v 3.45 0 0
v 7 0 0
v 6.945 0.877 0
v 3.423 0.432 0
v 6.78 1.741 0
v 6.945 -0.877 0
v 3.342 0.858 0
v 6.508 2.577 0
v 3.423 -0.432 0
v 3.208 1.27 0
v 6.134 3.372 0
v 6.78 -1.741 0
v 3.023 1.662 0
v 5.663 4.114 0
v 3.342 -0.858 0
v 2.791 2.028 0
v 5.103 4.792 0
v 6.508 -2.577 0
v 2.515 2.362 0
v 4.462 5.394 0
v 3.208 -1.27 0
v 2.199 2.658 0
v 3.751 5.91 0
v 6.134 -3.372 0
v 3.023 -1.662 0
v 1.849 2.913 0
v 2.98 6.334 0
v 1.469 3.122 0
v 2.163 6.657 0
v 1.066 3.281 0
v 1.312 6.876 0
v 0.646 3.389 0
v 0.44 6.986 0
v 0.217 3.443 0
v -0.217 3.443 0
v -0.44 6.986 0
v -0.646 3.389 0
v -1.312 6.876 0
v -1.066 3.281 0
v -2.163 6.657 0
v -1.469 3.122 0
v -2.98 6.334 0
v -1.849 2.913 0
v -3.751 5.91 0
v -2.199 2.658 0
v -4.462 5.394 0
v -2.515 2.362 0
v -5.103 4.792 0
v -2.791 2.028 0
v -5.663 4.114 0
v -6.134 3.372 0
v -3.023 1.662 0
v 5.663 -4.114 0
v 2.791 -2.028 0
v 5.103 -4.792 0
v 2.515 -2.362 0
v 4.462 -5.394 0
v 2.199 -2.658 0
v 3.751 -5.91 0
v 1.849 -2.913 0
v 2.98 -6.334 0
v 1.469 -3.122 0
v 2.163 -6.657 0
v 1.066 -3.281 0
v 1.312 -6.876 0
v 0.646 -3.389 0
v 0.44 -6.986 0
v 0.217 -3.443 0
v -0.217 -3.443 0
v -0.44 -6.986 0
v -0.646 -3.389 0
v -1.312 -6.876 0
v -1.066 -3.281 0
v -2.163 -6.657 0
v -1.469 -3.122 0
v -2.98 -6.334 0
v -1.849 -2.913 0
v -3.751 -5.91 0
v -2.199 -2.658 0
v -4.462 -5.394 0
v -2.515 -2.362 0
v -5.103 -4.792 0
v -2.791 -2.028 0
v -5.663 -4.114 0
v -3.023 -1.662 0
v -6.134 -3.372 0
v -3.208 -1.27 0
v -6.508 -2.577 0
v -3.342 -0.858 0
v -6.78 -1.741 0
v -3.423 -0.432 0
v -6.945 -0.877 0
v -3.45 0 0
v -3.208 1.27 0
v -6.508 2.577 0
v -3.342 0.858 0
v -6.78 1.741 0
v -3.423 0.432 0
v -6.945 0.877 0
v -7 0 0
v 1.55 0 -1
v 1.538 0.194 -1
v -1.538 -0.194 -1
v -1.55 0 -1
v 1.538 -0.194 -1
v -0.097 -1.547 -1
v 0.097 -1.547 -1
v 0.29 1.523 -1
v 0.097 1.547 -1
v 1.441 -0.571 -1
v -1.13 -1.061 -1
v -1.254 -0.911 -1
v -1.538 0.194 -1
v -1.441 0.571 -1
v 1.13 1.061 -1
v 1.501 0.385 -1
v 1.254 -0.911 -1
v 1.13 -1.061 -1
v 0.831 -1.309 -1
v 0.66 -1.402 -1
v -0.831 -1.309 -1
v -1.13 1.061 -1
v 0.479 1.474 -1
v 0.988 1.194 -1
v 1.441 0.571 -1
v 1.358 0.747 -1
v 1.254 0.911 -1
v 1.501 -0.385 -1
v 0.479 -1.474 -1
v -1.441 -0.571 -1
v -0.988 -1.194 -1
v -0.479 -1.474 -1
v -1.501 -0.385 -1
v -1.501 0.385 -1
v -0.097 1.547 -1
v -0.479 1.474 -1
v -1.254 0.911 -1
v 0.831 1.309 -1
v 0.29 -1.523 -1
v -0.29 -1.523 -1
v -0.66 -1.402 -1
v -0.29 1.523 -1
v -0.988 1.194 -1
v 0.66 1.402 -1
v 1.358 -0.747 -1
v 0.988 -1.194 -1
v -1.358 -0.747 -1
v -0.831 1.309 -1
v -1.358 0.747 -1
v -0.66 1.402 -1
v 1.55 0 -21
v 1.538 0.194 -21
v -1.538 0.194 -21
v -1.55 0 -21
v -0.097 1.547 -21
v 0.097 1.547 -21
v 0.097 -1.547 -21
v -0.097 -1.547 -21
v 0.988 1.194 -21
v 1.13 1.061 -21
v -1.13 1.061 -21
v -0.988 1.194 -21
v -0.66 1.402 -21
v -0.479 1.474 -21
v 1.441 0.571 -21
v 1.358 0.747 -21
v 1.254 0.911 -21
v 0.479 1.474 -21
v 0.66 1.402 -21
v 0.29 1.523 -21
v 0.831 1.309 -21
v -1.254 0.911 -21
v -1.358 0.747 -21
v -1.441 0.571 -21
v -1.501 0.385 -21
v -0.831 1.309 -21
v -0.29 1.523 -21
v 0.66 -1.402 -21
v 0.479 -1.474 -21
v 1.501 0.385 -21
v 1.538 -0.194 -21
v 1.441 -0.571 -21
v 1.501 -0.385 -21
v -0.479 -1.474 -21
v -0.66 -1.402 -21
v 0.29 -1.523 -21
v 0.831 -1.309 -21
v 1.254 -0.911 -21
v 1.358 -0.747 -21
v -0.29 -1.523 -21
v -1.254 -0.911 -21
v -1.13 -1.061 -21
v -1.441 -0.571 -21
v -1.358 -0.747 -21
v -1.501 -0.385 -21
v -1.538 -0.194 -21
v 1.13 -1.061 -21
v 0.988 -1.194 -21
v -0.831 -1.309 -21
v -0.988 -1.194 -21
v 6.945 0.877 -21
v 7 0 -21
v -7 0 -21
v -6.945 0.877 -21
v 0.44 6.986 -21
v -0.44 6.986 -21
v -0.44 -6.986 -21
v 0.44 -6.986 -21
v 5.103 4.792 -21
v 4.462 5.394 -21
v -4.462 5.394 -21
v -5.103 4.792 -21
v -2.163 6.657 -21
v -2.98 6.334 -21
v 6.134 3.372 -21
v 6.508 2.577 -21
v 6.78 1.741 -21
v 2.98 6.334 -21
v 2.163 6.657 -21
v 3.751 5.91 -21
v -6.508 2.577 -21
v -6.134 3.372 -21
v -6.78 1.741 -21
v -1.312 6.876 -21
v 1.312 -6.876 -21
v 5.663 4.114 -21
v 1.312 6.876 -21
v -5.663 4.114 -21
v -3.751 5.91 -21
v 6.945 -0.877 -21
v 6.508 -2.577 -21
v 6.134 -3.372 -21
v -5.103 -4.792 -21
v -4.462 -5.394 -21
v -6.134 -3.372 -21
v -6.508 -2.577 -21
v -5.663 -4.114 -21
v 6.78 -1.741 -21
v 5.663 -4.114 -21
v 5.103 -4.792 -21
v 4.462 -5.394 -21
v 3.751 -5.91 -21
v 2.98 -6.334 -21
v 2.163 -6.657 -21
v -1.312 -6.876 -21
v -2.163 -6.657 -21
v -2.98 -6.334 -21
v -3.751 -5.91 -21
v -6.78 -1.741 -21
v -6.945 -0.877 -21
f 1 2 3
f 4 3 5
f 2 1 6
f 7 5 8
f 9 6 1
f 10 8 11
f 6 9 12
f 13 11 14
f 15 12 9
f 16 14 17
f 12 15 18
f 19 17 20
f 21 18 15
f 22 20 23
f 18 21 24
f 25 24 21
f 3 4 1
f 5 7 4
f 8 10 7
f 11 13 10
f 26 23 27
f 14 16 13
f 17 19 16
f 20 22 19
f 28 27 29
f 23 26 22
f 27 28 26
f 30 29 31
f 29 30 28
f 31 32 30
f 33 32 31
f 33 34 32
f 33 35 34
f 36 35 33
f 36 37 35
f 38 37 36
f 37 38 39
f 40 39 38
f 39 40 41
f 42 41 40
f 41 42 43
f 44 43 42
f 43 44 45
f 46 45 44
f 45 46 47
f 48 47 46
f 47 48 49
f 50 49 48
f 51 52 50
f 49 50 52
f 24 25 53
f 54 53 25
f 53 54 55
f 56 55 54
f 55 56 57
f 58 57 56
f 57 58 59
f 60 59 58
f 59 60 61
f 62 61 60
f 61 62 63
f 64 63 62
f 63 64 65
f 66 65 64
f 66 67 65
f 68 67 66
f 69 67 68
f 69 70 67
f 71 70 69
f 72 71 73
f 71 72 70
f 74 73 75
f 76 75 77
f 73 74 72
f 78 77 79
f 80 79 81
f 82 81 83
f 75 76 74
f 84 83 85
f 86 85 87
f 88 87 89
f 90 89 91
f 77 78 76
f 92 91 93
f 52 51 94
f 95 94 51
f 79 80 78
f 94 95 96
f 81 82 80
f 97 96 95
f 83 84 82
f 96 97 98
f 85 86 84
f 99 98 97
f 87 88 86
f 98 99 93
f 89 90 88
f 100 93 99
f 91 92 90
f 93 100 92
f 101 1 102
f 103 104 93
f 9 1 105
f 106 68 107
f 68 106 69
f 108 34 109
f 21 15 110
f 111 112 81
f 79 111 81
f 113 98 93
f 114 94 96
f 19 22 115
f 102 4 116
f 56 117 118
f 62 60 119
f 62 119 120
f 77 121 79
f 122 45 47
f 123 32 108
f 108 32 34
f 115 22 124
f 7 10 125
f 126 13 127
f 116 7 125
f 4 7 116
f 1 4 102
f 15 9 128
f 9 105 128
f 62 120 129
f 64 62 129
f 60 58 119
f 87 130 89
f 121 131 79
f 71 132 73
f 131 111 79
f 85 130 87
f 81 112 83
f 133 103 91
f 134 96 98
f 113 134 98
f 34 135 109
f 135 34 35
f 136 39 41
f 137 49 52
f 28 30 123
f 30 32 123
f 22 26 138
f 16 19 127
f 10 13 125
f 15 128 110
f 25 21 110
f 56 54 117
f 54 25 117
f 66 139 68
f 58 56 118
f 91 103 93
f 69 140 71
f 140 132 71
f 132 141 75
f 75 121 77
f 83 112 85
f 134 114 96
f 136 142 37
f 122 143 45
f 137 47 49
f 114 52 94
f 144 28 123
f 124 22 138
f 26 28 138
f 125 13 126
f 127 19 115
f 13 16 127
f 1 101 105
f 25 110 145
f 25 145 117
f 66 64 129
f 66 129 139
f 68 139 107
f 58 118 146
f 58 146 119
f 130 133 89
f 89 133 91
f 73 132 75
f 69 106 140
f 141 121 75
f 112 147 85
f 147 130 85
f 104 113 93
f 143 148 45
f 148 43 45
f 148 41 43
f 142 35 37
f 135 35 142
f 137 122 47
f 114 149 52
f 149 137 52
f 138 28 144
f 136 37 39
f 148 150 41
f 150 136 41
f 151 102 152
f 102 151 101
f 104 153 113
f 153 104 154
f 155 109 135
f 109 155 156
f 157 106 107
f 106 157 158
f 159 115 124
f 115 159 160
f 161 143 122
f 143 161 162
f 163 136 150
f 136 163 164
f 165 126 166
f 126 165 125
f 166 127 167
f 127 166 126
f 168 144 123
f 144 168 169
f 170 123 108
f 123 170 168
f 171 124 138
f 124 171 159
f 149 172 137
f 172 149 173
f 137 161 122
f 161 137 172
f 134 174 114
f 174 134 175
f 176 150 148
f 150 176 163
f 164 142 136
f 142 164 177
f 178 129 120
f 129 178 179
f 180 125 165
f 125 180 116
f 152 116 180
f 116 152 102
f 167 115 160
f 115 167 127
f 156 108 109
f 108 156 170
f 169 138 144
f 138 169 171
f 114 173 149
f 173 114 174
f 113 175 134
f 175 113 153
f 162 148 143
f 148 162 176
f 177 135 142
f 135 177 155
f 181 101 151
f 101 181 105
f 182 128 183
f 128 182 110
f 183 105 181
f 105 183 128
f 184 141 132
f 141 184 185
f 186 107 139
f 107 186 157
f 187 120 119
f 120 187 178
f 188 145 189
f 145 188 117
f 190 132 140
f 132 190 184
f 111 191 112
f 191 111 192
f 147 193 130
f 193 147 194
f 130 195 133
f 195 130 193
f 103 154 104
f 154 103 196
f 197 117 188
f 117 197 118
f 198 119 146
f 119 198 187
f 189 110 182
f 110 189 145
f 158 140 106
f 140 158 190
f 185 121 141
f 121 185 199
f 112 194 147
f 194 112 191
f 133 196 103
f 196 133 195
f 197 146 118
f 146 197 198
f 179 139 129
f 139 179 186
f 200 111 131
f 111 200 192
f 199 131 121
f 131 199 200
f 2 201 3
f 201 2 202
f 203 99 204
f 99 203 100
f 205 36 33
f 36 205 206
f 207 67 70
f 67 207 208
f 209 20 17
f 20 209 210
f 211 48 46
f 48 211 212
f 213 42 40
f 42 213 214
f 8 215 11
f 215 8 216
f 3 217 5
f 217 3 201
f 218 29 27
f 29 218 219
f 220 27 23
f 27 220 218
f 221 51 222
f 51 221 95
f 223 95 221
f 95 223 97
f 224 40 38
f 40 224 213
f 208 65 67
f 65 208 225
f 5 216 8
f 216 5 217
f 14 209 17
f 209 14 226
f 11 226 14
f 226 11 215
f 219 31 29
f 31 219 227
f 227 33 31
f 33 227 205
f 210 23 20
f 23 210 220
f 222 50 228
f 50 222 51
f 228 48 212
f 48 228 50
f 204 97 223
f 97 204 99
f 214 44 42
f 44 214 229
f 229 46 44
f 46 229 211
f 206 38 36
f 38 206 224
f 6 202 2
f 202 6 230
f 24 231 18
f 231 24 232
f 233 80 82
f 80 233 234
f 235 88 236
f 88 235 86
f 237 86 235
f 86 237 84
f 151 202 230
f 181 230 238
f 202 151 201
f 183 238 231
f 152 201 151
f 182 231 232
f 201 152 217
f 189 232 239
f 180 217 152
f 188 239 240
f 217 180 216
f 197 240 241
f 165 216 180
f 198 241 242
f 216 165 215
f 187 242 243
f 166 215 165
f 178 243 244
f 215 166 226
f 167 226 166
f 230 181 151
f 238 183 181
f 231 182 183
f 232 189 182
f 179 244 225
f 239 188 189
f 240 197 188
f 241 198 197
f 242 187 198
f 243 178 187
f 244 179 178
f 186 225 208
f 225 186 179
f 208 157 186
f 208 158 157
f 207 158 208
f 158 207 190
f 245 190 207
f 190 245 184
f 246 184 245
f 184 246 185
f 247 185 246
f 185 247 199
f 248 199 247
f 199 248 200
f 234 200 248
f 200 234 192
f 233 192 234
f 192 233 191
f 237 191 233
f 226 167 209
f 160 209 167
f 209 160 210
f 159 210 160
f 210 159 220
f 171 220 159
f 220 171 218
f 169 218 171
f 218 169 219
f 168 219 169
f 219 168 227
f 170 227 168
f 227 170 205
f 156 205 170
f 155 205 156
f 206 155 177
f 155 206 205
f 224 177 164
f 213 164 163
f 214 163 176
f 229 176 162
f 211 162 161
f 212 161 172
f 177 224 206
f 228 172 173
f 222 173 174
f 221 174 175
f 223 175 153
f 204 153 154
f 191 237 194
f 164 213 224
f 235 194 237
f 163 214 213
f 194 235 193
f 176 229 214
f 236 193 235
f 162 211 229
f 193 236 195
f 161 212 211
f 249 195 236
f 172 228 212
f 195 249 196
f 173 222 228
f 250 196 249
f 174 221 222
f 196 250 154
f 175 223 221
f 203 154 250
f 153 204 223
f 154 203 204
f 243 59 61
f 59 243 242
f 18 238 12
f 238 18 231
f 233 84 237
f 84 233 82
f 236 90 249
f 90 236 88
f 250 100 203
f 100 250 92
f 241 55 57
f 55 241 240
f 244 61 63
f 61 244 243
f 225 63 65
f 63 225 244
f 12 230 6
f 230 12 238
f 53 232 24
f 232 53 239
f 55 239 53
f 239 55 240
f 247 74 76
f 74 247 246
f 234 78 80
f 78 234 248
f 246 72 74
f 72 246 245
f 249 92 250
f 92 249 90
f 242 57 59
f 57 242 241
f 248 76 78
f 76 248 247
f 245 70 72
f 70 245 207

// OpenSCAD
$fn = 50;

difference() {
	union() {
		translate(v = [0, 0, -21.0]) {
			cylinder(h = 21, r = 7.0);
		}
	}
	union() {
		translate(v = [0, 0, 0]) {
			rotate(a = [0, 0, 0]) {
				difference() {
					union() {
						translate(v = [0, 0, -24.0]) {
							cylinder(h = 24, r = 1.25);
						}
						translate(v = [0, 0, -1.0]) {
							cylinder(h = 1.0, r1 = 1.55, r2 = 3.45);
						}
						translate(v = [0, 0, -24.0]) {
							cylinder(h = 24, r = 1.55);
						}
						translate(v = [0, 0, -24.0]) {
							cylinder(h = 24, r = 1.25);
						}
					}
					union();
				}
			}
		}
	}
}
